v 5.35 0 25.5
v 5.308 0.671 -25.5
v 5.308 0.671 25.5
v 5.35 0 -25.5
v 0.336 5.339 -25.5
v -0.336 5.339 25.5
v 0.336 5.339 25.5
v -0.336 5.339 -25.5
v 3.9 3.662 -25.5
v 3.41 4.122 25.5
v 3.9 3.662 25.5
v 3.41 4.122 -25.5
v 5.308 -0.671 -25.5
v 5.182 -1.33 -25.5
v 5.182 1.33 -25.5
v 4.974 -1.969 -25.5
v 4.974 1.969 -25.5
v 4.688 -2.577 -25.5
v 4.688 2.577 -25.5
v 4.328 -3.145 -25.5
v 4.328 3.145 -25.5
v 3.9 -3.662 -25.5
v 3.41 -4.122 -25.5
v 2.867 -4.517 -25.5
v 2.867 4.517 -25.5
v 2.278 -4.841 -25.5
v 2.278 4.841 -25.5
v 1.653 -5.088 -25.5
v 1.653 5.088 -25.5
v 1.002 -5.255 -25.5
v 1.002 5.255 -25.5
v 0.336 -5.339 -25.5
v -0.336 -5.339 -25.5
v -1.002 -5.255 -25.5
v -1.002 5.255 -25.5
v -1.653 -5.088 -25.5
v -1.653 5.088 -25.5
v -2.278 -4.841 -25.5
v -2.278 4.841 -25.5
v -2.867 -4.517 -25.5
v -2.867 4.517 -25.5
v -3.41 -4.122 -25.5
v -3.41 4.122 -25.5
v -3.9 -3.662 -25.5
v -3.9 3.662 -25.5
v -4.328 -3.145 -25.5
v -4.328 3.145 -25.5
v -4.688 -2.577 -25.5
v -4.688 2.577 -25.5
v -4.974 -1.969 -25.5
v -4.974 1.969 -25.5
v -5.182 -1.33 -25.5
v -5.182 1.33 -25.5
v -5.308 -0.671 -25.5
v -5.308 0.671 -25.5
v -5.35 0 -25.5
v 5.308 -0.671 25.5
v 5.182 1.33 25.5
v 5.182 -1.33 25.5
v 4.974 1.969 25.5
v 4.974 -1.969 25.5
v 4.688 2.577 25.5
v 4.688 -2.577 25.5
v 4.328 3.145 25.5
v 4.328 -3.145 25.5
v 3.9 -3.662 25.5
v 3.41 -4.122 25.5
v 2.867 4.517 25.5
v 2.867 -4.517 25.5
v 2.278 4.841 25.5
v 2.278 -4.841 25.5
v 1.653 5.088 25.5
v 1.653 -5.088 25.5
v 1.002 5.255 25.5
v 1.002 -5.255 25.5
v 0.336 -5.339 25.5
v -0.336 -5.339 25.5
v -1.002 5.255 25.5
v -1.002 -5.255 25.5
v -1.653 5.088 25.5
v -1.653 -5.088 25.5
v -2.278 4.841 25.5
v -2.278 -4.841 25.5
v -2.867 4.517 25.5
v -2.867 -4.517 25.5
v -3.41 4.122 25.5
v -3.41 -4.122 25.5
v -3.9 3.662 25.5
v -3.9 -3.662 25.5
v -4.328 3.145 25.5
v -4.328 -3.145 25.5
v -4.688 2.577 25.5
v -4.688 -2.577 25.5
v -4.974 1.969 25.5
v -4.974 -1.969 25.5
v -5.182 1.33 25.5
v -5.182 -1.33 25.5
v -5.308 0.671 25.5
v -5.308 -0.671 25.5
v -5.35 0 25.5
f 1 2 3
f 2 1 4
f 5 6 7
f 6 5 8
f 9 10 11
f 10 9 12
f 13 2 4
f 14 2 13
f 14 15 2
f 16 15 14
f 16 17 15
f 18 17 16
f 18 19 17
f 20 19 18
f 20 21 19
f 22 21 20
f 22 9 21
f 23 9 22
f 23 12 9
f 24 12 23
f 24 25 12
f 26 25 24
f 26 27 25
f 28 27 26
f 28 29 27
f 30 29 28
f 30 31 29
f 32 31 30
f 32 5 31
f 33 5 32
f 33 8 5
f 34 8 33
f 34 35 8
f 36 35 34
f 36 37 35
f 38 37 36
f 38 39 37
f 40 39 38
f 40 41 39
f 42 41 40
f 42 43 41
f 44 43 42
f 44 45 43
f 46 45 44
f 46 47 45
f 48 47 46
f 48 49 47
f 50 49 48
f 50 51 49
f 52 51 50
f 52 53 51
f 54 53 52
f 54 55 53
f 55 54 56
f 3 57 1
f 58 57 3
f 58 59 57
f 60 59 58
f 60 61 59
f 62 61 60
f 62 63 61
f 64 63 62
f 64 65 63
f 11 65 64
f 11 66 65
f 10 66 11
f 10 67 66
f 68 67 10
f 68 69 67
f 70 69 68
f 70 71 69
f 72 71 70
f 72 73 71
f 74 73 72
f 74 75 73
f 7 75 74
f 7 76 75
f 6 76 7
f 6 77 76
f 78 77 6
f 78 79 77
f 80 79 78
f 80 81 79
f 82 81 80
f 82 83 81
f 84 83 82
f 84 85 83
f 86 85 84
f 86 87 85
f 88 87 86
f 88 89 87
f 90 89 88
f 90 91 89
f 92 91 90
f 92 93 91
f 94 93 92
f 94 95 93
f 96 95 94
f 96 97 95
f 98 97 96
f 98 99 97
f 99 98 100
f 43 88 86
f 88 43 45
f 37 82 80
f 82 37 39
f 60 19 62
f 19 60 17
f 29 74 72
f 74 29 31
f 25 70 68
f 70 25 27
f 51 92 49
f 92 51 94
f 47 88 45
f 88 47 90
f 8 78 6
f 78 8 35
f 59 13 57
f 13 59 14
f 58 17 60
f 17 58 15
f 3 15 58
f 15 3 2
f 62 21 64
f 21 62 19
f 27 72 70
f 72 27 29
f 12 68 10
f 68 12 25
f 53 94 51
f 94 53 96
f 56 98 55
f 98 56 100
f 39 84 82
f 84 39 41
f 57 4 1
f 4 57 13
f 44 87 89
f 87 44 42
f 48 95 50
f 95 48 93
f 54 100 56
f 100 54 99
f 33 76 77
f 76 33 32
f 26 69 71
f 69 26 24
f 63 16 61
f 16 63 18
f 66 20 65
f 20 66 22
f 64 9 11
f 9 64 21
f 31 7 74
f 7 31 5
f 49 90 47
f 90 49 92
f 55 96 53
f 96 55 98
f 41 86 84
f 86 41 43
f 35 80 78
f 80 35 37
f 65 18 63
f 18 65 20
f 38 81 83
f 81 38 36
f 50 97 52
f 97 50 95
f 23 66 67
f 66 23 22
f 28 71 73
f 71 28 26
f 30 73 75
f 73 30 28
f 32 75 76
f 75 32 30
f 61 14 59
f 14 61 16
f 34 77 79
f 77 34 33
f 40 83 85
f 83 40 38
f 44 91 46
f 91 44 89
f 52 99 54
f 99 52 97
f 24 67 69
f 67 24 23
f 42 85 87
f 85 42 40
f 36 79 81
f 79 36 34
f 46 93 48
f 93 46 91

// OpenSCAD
$fn = 50;


difference() {
	union() {
		translate(v = [0, 0, -25.5000000000]) {
			cylinder(h = 51, r = 5.3500000000);
		}
	}
	union() {
		translate(v = [0, 0, -100.0000000000]) {
			cylinder(h = 200, r = 0);
		}
	}
}
